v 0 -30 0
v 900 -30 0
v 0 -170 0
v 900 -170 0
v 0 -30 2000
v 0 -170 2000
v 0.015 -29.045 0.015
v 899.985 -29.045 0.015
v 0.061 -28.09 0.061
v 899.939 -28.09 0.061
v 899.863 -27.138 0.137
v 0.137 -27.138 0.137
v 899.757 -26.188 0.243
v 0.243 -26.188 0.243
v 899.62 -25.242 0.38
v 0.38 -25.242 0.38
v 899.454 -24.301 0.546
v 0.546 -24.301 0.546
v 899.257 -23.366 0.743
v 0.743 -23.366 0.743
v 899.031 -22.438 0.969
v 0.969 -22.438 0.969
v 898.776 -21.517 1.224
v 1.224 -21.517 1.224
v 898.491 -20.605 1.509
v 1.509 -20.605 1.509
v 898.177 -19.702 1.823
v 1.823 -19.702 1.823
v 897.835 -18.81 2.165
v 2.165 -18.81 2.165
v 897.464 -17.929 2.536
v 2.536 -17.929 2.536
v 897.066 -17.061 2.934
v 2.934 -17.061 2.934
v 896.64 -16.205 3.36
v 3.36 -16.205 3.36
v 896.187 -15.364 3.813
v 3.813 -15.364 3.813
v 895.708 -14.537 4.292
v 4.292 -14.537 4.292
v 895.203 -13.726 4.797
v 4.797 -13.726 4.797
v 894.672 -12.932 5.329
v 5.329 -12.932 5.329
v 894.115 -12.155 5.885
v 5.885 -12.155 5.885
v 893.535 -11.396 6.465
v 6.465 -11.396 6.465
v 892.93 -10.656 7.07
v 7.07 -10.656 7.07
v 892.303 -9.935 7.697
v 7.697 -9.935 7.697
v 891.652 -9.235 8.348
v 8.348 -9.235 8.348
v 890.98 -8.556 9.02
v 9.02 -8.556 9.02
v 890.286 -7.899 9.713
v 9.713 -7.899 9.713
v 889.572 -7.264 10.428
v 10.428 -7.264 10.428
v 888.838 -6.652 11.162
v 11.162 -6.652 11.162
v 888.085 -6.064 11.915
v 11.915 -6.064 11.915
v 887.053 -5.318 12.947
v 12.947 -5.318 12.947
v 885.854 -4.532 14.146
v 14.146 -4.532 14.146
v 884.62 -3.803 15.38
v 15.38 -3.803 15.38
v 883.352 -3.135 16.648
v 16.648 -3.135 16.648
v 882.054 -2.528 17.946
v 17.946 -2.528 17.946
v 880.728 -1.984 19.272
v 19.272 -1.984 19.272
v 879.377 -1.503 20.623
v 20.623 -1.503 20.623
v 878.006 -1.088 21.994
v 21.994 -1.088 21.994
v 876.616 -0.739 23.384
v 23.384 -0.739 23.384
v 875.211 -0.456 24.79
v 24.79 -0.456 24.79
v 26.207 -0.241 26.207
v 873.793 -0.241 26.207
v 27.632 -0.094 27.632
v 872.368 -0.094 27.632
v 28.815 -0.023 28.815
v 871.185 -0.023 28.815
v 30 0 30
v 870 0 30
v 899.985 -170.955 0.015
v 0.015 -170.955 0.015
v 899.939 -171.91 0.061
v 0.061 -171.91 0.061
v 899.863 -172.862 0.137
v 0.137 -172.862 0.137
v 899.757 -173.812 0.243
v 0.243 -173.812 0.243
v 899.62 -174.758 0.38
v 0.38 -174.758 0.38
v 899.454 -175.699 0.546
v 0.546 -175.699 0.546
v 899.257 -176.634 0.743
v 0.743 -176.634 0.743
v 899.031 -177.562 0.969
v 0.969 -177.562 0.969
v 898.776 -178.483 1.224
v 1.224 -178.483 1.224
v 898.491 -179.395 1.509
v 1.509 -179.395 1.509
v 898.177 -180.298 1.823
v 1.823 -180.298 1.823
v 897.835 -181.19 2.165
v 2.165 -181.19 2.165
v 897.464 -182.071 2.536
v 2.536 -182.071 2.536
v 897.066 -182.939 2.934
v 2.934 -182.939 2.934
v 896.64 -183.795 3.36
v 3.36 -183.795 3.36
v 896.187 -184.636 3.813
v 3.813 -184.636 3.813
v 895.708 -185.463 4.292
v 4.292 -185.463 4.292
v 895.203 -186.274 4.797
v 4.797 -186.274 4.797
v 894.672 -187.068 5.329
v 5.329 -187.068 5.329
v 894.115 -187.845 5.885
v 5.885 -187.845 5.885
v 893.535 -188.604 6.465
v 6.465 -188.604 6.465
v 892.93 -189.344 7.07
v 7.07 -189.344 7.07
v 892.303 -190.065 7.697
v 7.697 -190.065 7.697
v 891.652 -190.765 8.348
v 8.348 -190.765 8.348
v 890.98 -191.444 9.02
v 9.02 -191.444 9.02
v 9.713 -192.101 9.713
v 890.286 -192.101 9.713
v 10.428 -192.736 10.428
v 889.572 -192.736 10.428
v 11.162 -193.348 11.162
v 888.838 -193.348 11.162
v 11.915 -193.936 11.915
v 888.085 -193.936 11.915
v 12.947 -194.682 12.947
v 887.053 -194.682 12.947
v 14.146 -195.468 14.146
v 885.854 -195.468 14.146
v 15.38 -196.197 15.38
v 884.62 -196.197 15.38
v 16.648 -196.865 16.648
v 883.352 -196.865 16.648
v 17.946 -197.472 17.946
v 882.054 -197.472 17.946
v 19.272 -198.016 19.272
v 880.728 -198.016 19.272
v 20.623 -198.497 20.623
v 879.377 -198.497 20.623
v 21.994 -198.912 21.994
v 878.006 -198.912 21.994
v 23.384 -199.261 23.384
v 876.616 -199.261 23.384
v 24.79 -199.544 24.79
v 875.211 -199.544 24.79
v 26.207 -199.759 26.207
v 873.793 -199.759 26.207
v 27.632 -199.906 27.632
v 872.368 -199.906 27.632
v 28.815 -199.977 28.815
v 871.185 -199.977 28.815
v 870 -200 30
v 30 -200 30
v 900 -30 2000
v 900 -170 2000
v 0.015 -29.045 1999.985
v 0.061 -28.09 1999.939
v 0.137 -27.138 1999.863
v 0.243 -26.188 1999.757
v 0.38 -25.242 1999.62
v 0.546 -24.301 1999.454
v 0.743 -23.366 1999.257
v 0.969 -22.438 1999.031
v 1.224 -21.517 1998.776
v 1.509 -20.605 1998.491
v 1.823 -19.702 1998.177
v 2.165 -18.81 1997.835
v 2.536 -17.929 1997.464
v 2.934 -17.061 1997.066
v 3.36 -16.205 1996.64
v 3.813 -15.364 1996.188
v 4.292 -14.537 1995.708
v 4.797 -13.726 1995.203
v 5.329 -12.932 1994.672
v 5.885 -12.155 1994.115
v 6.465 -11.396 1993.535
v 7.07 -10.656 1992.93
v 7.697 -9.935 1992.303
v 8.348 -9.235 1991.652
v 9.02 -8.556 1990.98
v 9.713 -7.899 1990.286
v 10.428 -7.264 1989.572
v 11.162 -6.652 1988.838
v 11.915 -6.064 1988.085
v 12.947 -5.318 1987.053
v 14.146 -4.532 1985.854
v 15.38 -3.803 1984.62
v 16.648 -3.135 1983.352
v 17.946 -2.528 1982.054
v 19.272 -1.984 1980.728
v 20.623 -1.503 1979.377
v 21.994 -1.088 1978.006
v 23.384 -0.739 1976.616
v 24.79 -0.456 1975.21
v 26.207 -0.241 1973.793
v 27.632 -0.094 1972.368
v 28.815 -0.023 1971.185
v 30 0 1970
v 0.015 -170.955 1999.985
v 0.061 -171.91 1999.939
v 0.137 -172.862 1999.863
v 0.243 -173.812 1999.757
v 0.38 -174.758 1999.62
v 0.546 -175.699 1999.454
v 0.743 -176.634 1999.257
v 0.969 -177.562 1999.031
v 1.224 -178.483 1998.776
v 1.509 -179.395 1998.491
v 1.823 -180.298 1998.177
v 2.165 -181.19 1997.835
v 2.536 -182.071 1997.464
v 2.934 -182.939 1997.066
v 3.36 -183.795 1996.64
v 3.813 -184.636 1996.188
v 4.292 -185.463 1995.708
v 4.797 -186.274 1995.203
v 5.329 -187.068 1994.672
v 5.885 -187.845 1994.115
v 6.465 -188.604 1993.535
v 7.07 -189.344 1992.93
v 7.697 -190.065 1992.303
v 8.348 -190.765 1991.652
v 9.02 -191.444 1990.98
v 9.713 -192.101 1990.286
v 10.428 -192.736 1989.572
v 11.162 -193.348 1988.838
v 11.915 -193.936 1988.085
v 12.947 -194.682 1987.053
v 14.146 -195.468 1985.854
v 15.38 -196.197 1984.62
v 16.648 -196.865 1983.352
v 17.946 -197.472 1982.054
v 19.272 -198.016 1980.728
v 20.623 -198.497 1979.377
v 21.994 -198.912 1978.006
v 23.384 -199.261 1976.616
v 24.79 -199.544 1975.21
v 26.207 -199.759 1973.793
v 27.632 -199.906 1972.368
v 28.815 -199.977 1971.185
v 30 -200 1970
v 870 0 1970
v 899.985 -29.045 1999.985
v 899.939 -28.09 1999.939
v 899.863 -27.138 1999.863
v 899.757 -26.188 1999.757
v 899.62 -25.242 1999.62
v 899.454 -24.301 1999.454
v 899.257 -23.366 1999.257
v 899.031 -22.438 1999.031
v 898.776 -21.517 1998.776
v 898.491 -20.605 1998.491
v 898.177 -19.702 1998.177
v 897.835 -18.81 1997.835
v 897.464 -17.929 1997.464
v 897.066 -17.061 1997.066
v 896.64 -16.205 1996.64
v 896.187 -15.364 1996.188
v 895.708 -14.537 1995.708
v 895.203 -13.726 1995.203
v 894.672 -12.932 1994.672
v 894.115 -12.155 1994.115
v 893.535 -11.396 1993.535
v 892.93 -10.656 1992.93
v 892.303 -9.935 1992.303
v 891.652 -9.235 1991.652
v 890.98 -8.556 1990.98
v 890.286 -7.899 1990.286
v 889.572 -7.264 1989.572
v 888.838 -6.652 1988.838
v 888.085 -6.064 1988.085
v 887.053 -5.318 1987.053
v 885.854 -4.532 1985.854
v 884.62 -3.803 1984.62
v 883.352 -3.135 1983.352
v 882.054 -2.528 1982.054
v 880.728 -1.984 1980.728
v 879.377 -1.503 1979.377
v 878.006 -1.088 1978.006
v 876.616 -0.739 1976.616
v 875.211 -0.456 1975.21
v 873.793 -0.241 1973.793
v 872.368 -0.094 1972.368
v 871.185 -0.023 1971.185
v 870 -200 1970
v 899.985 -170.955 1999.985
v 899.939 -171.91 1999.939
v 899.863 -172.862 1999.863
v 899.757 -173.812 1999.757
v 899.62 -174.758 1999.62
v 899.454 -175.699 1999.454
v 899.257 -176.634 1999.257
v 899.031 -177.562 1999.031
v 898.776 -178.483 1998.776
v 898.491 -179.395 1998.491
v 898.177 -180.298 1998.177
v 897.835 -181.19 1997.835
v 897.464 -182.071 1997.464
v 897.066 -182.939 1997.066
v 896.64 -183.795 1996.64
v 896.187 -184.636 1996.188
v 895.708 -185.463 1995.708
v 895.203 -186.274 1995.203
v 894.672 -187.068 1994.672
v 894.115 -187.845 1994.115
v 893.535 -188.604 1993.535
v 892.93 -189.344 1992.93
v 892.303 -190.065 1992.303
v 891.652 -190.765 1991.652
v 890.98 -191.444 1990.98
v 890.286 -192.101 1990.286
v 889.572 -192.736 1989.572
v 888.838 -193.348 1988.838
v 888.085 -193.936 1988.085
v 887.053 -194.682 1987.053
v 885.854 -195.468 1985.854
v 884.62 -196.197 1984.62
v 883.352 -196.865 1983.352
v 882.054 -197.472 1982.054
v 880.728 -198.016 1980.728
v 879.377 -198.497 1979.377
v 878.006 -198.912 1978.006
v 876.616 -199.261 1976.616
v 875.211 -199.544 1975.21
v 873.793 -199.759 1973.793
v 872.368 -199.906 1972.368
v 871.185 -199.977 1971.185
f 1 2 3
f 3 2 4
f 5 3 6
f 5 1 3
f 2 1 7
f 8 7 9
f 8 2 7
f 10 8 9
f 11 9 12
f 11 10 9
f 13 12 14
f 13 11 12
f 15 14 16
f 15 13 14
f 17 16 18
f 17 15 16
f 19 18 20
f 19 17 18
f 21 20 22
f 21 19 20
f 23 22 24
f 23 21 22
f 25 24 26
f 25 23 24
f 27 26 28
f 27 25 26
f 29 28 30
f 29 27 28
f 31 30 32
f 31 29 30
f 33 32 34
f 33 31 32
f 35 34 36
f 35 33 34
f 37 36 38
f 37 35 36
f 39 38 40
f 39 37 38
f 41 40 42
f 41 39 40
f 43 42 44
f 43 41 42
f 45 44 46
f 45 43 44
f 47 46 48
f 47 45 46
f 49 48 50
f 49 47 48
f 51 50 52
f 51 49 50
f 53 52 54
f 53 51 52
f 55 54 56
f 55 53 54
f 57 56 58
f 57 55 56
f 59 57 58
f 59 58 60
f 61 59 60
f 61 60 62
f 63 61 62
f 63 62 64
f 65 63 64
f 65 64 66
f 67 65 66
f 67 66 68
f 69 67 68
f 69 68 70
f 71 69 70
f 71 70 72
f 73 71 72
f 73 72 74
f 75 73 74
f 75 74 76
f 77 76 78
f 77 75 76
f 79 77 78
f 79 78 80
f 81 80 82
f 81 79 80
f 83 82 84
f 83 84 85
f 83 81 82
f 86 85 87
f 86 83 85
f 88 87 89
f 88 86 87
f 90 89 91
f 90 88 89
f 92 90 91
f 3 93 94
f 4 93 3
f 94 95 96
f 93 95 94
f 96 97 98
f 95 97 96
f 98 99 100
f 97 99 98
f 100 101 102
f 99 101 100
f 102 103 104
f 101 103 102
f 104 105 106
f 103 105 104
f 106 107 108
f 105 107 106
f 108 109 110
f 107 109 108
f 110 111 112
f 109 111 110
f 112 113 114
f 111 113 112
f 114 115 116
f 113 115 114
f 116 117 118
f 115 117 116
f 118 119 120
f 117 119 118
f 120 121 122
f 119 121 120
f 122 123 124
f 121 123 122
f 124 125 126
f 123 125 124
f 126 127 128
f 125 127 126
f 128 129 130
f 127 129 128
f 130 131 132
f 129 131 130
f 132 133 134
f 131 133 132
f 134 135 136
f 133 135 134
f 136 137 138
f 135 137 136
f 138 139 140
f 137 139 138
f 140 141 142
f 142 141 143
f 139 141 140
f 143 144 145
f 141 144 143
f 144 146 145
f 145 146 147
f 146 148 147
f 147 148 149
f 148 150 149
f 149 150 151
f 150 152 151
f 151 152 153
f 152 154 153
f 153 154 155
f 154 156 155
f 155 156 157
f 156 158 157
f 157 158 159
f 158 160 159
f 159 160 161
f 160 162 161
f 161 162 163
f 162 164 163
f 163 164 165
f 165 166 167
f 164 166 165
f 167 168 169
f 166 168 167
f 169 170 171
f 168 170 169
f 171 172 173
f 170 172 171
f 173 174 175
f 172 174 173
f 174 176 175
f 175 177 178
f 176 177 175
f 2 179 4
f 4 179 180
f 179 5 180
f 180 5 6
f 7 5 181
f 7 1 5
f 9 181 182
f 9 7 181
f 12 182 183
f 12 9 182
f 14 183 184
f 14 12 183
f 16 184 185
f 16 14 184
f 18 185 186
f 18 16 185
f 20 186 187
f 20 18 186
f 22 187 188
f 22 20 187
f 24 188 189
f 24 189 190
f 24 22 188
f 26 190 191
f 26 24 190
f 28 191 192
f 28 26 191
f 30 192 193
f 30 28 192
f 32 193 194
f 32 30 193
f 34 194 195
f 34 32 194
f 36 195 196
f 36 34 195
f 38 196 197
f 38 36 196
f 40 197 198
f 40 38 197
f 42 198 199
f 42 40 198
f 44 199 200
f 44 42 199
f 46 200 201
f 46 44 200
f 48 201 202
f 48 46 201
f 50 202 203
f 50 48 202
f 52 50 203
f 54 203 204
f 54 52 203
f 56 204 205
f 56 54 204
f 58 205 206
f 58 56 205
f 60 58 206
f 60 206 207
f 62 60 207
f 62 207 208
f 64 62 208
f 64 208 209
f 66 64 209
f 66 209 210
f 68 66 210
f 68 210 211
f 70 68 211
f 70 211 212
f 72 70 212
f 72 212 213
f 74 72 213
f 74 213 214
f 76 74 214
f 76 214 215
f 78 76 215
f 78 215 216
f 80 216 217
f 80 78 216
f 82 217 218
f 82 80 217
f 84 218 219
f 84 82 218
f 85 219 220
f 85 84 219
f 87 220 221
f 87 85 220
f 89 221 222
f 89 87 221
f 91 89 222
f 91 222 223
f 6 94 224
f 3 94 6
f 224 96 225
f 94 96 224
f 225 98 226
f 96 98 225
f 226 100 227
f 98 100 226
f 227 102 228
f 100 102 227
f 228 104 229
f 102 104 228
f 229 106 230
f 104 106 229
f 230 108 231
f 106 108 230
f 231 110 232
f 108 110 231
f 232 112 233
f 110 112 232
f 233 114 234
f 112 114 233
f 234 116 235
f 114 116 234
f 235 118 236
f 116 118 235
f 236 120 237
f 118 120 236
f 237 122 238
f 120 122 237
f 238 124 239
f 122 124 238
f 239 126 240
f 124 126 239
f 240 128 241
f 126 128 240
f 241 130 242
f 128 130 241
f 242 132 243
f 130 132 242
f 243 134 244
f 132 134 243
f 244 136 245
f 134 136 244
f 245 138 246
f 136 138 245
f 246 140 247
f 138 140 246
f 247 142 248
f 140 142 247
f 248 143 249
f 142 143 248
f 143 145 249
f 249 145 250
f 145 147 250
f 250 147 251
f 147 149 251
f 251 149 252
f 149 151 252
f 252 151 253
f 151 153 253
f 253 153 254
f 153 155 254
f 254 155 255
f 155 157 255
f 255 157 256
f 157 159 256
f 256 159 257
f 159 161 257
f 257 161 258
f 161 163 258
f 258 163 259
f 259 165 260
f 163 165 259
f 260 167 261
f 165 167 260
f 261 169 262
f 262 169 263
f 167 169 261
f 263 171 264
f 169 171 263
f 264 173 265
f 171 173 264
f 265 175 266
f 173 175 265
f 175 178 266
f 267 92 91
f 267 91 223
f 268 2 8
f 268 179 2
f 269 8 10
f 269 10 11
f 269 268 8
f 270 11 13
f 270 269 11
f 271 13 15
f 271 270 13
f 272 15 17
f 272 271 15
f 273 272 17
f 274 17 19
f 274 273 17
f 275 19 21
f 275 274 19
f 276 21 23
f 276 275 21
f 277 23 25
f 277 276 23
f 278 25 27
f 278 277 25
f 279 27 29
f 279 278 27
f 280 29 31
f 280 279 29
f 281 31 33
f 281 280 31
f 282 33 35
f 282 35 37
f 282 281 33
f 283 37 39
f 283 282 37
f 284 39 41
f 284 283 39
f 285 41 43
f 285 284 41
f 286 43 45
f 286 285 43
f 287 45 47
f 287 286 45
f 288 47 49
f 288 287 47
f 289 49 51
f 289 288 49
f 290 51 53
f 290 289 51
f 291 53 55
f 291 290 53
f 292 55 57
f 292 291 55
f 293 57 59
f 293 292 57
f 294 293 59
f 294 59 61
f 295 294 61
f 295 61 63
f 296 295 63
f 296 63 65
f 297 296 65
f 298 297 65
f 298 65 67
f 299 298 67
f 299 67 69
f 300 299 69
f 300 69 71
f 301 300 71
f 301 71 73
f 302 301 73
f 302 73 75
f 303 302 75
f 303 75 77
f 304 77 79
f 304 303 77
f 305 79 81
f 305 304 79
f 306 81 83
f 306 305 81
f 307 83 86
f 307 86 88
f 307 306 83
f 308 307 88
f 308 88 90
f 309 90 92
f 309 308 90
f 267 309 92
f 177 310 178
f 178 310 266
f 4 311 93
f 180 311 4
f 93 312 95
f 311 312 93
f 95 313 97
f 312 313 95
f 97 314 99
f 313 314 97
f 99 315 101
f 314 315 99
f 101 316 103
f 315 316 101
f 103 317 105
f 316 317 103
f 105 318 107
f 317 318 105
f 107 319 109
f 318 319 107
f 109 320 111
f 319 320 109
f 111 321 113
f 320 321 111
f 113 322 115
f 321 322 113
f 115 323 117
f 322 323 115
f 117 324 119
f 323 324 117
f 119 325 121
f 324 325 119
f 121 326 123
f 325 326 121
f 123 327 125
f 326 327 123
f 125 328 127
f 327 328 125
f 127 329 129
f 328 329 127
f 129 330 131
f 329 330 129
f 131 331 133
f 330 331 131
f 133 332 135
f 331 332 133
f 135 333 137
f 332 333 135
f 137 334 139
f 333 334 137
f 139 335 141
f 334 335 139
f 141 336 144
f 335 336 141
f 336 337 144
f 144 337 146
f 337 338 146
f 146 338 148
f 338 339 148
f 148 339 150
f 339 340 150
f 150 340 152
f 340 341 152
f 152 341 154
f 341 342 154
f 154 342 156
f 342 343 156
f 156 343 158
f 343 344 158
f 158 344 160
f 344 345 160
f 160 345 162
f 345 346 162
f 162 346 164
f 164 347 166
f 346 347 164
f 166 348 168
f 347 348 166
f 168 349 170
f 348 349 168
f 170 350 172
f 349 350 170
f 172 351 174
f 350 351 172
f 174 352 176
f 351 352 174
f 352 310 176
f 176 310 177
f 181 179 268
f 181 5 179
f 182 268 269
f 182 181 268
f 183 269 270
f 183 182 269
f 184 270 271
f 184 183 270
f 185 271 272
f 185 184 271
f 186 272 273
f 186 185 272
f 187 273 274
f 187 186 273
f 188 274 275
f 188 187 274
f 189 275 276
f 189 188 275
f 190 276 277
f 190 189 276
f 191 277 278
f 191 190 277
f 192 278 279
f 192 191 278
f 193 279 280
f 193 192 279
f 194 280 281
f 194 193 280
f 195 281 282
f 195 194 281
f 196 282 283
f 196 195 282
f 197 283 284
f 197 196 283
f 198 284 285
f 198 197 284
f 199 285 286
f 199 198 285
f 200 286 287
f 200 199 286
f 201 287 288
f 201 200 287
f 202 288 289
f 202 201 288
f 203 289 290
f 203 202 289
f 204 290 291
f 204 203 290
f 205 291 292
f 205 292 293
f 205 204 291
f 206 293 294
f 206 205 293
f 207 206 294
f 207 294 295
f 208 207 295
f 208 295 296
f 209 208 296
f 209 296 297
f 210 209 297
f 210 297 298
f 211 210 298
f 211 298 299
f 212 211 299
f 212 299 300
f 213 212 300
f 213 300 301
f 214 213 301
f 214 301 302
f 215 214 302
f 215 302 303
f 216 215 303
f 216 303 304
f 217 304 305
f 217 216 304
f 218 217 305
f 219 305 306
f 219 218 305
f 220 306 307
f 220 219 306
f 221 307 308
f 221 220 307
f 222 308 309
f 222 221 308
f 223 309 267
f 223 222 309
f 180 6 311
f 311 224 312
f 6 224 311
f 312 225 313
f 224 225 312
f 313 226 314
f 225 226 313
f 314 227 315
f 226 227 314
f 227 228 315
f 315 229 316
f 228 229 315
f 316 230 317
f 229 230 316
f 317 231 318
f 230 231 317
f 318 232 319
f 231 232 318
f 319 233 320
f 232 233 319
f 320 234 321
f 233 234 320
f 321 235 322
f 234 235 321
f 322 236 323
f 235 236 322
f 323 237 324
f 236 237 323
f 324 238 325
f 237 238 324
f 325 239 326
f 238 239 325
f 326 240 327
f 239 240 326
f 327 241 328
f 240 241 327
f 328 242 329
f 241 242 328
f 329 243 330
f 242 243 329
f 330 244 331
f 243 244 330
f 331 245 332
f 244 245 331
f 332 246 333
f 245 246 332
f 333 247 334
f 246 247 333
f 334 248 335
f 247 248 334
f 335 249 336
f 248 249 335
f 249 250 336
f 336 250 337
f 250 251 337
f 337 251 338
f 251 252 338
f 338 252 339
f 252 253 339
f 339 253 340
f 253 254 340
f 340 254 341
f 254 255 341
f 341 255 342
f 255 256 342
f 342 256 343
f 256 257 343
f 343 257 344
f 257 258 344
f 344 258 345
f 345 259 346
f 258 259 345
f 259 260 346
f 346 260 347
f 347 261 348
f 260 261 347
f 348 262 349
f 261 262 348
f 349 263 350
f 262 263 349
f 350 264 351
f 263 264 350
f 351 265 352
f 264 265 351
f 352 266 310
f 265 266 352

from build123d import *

# Parameters (mm, degrees)
SKETCH_W  = 900
SKETCH_H  = 2000
PAD_DEPTH = 200
FILLET_R  = 30


with BuildPart() as part:
    # Sketch → Pad (new body)
    with BuildSketch(Plane.XZ):
        with Locations((450, 1000)):
            Rectangle(SKETCH_W, SKETCH_H)
    extrude(amount=PAD_DEPTH)

    # Fillet
    fillet_edges = [part.edges().sort_by_distance(p)[0] for p in [
        (450, -200, 2000),
        (900, -200, 1000),
        (450, -200, 0),
        (0, -200, 1000),
        (450, 0, 2000),
        (0, 0, 1000),
        (900, 0, 1000),
        (450, 0, 0),
    ]]
    fillet(fillet_edges, radius=FILLET_R)


solid = part.part
